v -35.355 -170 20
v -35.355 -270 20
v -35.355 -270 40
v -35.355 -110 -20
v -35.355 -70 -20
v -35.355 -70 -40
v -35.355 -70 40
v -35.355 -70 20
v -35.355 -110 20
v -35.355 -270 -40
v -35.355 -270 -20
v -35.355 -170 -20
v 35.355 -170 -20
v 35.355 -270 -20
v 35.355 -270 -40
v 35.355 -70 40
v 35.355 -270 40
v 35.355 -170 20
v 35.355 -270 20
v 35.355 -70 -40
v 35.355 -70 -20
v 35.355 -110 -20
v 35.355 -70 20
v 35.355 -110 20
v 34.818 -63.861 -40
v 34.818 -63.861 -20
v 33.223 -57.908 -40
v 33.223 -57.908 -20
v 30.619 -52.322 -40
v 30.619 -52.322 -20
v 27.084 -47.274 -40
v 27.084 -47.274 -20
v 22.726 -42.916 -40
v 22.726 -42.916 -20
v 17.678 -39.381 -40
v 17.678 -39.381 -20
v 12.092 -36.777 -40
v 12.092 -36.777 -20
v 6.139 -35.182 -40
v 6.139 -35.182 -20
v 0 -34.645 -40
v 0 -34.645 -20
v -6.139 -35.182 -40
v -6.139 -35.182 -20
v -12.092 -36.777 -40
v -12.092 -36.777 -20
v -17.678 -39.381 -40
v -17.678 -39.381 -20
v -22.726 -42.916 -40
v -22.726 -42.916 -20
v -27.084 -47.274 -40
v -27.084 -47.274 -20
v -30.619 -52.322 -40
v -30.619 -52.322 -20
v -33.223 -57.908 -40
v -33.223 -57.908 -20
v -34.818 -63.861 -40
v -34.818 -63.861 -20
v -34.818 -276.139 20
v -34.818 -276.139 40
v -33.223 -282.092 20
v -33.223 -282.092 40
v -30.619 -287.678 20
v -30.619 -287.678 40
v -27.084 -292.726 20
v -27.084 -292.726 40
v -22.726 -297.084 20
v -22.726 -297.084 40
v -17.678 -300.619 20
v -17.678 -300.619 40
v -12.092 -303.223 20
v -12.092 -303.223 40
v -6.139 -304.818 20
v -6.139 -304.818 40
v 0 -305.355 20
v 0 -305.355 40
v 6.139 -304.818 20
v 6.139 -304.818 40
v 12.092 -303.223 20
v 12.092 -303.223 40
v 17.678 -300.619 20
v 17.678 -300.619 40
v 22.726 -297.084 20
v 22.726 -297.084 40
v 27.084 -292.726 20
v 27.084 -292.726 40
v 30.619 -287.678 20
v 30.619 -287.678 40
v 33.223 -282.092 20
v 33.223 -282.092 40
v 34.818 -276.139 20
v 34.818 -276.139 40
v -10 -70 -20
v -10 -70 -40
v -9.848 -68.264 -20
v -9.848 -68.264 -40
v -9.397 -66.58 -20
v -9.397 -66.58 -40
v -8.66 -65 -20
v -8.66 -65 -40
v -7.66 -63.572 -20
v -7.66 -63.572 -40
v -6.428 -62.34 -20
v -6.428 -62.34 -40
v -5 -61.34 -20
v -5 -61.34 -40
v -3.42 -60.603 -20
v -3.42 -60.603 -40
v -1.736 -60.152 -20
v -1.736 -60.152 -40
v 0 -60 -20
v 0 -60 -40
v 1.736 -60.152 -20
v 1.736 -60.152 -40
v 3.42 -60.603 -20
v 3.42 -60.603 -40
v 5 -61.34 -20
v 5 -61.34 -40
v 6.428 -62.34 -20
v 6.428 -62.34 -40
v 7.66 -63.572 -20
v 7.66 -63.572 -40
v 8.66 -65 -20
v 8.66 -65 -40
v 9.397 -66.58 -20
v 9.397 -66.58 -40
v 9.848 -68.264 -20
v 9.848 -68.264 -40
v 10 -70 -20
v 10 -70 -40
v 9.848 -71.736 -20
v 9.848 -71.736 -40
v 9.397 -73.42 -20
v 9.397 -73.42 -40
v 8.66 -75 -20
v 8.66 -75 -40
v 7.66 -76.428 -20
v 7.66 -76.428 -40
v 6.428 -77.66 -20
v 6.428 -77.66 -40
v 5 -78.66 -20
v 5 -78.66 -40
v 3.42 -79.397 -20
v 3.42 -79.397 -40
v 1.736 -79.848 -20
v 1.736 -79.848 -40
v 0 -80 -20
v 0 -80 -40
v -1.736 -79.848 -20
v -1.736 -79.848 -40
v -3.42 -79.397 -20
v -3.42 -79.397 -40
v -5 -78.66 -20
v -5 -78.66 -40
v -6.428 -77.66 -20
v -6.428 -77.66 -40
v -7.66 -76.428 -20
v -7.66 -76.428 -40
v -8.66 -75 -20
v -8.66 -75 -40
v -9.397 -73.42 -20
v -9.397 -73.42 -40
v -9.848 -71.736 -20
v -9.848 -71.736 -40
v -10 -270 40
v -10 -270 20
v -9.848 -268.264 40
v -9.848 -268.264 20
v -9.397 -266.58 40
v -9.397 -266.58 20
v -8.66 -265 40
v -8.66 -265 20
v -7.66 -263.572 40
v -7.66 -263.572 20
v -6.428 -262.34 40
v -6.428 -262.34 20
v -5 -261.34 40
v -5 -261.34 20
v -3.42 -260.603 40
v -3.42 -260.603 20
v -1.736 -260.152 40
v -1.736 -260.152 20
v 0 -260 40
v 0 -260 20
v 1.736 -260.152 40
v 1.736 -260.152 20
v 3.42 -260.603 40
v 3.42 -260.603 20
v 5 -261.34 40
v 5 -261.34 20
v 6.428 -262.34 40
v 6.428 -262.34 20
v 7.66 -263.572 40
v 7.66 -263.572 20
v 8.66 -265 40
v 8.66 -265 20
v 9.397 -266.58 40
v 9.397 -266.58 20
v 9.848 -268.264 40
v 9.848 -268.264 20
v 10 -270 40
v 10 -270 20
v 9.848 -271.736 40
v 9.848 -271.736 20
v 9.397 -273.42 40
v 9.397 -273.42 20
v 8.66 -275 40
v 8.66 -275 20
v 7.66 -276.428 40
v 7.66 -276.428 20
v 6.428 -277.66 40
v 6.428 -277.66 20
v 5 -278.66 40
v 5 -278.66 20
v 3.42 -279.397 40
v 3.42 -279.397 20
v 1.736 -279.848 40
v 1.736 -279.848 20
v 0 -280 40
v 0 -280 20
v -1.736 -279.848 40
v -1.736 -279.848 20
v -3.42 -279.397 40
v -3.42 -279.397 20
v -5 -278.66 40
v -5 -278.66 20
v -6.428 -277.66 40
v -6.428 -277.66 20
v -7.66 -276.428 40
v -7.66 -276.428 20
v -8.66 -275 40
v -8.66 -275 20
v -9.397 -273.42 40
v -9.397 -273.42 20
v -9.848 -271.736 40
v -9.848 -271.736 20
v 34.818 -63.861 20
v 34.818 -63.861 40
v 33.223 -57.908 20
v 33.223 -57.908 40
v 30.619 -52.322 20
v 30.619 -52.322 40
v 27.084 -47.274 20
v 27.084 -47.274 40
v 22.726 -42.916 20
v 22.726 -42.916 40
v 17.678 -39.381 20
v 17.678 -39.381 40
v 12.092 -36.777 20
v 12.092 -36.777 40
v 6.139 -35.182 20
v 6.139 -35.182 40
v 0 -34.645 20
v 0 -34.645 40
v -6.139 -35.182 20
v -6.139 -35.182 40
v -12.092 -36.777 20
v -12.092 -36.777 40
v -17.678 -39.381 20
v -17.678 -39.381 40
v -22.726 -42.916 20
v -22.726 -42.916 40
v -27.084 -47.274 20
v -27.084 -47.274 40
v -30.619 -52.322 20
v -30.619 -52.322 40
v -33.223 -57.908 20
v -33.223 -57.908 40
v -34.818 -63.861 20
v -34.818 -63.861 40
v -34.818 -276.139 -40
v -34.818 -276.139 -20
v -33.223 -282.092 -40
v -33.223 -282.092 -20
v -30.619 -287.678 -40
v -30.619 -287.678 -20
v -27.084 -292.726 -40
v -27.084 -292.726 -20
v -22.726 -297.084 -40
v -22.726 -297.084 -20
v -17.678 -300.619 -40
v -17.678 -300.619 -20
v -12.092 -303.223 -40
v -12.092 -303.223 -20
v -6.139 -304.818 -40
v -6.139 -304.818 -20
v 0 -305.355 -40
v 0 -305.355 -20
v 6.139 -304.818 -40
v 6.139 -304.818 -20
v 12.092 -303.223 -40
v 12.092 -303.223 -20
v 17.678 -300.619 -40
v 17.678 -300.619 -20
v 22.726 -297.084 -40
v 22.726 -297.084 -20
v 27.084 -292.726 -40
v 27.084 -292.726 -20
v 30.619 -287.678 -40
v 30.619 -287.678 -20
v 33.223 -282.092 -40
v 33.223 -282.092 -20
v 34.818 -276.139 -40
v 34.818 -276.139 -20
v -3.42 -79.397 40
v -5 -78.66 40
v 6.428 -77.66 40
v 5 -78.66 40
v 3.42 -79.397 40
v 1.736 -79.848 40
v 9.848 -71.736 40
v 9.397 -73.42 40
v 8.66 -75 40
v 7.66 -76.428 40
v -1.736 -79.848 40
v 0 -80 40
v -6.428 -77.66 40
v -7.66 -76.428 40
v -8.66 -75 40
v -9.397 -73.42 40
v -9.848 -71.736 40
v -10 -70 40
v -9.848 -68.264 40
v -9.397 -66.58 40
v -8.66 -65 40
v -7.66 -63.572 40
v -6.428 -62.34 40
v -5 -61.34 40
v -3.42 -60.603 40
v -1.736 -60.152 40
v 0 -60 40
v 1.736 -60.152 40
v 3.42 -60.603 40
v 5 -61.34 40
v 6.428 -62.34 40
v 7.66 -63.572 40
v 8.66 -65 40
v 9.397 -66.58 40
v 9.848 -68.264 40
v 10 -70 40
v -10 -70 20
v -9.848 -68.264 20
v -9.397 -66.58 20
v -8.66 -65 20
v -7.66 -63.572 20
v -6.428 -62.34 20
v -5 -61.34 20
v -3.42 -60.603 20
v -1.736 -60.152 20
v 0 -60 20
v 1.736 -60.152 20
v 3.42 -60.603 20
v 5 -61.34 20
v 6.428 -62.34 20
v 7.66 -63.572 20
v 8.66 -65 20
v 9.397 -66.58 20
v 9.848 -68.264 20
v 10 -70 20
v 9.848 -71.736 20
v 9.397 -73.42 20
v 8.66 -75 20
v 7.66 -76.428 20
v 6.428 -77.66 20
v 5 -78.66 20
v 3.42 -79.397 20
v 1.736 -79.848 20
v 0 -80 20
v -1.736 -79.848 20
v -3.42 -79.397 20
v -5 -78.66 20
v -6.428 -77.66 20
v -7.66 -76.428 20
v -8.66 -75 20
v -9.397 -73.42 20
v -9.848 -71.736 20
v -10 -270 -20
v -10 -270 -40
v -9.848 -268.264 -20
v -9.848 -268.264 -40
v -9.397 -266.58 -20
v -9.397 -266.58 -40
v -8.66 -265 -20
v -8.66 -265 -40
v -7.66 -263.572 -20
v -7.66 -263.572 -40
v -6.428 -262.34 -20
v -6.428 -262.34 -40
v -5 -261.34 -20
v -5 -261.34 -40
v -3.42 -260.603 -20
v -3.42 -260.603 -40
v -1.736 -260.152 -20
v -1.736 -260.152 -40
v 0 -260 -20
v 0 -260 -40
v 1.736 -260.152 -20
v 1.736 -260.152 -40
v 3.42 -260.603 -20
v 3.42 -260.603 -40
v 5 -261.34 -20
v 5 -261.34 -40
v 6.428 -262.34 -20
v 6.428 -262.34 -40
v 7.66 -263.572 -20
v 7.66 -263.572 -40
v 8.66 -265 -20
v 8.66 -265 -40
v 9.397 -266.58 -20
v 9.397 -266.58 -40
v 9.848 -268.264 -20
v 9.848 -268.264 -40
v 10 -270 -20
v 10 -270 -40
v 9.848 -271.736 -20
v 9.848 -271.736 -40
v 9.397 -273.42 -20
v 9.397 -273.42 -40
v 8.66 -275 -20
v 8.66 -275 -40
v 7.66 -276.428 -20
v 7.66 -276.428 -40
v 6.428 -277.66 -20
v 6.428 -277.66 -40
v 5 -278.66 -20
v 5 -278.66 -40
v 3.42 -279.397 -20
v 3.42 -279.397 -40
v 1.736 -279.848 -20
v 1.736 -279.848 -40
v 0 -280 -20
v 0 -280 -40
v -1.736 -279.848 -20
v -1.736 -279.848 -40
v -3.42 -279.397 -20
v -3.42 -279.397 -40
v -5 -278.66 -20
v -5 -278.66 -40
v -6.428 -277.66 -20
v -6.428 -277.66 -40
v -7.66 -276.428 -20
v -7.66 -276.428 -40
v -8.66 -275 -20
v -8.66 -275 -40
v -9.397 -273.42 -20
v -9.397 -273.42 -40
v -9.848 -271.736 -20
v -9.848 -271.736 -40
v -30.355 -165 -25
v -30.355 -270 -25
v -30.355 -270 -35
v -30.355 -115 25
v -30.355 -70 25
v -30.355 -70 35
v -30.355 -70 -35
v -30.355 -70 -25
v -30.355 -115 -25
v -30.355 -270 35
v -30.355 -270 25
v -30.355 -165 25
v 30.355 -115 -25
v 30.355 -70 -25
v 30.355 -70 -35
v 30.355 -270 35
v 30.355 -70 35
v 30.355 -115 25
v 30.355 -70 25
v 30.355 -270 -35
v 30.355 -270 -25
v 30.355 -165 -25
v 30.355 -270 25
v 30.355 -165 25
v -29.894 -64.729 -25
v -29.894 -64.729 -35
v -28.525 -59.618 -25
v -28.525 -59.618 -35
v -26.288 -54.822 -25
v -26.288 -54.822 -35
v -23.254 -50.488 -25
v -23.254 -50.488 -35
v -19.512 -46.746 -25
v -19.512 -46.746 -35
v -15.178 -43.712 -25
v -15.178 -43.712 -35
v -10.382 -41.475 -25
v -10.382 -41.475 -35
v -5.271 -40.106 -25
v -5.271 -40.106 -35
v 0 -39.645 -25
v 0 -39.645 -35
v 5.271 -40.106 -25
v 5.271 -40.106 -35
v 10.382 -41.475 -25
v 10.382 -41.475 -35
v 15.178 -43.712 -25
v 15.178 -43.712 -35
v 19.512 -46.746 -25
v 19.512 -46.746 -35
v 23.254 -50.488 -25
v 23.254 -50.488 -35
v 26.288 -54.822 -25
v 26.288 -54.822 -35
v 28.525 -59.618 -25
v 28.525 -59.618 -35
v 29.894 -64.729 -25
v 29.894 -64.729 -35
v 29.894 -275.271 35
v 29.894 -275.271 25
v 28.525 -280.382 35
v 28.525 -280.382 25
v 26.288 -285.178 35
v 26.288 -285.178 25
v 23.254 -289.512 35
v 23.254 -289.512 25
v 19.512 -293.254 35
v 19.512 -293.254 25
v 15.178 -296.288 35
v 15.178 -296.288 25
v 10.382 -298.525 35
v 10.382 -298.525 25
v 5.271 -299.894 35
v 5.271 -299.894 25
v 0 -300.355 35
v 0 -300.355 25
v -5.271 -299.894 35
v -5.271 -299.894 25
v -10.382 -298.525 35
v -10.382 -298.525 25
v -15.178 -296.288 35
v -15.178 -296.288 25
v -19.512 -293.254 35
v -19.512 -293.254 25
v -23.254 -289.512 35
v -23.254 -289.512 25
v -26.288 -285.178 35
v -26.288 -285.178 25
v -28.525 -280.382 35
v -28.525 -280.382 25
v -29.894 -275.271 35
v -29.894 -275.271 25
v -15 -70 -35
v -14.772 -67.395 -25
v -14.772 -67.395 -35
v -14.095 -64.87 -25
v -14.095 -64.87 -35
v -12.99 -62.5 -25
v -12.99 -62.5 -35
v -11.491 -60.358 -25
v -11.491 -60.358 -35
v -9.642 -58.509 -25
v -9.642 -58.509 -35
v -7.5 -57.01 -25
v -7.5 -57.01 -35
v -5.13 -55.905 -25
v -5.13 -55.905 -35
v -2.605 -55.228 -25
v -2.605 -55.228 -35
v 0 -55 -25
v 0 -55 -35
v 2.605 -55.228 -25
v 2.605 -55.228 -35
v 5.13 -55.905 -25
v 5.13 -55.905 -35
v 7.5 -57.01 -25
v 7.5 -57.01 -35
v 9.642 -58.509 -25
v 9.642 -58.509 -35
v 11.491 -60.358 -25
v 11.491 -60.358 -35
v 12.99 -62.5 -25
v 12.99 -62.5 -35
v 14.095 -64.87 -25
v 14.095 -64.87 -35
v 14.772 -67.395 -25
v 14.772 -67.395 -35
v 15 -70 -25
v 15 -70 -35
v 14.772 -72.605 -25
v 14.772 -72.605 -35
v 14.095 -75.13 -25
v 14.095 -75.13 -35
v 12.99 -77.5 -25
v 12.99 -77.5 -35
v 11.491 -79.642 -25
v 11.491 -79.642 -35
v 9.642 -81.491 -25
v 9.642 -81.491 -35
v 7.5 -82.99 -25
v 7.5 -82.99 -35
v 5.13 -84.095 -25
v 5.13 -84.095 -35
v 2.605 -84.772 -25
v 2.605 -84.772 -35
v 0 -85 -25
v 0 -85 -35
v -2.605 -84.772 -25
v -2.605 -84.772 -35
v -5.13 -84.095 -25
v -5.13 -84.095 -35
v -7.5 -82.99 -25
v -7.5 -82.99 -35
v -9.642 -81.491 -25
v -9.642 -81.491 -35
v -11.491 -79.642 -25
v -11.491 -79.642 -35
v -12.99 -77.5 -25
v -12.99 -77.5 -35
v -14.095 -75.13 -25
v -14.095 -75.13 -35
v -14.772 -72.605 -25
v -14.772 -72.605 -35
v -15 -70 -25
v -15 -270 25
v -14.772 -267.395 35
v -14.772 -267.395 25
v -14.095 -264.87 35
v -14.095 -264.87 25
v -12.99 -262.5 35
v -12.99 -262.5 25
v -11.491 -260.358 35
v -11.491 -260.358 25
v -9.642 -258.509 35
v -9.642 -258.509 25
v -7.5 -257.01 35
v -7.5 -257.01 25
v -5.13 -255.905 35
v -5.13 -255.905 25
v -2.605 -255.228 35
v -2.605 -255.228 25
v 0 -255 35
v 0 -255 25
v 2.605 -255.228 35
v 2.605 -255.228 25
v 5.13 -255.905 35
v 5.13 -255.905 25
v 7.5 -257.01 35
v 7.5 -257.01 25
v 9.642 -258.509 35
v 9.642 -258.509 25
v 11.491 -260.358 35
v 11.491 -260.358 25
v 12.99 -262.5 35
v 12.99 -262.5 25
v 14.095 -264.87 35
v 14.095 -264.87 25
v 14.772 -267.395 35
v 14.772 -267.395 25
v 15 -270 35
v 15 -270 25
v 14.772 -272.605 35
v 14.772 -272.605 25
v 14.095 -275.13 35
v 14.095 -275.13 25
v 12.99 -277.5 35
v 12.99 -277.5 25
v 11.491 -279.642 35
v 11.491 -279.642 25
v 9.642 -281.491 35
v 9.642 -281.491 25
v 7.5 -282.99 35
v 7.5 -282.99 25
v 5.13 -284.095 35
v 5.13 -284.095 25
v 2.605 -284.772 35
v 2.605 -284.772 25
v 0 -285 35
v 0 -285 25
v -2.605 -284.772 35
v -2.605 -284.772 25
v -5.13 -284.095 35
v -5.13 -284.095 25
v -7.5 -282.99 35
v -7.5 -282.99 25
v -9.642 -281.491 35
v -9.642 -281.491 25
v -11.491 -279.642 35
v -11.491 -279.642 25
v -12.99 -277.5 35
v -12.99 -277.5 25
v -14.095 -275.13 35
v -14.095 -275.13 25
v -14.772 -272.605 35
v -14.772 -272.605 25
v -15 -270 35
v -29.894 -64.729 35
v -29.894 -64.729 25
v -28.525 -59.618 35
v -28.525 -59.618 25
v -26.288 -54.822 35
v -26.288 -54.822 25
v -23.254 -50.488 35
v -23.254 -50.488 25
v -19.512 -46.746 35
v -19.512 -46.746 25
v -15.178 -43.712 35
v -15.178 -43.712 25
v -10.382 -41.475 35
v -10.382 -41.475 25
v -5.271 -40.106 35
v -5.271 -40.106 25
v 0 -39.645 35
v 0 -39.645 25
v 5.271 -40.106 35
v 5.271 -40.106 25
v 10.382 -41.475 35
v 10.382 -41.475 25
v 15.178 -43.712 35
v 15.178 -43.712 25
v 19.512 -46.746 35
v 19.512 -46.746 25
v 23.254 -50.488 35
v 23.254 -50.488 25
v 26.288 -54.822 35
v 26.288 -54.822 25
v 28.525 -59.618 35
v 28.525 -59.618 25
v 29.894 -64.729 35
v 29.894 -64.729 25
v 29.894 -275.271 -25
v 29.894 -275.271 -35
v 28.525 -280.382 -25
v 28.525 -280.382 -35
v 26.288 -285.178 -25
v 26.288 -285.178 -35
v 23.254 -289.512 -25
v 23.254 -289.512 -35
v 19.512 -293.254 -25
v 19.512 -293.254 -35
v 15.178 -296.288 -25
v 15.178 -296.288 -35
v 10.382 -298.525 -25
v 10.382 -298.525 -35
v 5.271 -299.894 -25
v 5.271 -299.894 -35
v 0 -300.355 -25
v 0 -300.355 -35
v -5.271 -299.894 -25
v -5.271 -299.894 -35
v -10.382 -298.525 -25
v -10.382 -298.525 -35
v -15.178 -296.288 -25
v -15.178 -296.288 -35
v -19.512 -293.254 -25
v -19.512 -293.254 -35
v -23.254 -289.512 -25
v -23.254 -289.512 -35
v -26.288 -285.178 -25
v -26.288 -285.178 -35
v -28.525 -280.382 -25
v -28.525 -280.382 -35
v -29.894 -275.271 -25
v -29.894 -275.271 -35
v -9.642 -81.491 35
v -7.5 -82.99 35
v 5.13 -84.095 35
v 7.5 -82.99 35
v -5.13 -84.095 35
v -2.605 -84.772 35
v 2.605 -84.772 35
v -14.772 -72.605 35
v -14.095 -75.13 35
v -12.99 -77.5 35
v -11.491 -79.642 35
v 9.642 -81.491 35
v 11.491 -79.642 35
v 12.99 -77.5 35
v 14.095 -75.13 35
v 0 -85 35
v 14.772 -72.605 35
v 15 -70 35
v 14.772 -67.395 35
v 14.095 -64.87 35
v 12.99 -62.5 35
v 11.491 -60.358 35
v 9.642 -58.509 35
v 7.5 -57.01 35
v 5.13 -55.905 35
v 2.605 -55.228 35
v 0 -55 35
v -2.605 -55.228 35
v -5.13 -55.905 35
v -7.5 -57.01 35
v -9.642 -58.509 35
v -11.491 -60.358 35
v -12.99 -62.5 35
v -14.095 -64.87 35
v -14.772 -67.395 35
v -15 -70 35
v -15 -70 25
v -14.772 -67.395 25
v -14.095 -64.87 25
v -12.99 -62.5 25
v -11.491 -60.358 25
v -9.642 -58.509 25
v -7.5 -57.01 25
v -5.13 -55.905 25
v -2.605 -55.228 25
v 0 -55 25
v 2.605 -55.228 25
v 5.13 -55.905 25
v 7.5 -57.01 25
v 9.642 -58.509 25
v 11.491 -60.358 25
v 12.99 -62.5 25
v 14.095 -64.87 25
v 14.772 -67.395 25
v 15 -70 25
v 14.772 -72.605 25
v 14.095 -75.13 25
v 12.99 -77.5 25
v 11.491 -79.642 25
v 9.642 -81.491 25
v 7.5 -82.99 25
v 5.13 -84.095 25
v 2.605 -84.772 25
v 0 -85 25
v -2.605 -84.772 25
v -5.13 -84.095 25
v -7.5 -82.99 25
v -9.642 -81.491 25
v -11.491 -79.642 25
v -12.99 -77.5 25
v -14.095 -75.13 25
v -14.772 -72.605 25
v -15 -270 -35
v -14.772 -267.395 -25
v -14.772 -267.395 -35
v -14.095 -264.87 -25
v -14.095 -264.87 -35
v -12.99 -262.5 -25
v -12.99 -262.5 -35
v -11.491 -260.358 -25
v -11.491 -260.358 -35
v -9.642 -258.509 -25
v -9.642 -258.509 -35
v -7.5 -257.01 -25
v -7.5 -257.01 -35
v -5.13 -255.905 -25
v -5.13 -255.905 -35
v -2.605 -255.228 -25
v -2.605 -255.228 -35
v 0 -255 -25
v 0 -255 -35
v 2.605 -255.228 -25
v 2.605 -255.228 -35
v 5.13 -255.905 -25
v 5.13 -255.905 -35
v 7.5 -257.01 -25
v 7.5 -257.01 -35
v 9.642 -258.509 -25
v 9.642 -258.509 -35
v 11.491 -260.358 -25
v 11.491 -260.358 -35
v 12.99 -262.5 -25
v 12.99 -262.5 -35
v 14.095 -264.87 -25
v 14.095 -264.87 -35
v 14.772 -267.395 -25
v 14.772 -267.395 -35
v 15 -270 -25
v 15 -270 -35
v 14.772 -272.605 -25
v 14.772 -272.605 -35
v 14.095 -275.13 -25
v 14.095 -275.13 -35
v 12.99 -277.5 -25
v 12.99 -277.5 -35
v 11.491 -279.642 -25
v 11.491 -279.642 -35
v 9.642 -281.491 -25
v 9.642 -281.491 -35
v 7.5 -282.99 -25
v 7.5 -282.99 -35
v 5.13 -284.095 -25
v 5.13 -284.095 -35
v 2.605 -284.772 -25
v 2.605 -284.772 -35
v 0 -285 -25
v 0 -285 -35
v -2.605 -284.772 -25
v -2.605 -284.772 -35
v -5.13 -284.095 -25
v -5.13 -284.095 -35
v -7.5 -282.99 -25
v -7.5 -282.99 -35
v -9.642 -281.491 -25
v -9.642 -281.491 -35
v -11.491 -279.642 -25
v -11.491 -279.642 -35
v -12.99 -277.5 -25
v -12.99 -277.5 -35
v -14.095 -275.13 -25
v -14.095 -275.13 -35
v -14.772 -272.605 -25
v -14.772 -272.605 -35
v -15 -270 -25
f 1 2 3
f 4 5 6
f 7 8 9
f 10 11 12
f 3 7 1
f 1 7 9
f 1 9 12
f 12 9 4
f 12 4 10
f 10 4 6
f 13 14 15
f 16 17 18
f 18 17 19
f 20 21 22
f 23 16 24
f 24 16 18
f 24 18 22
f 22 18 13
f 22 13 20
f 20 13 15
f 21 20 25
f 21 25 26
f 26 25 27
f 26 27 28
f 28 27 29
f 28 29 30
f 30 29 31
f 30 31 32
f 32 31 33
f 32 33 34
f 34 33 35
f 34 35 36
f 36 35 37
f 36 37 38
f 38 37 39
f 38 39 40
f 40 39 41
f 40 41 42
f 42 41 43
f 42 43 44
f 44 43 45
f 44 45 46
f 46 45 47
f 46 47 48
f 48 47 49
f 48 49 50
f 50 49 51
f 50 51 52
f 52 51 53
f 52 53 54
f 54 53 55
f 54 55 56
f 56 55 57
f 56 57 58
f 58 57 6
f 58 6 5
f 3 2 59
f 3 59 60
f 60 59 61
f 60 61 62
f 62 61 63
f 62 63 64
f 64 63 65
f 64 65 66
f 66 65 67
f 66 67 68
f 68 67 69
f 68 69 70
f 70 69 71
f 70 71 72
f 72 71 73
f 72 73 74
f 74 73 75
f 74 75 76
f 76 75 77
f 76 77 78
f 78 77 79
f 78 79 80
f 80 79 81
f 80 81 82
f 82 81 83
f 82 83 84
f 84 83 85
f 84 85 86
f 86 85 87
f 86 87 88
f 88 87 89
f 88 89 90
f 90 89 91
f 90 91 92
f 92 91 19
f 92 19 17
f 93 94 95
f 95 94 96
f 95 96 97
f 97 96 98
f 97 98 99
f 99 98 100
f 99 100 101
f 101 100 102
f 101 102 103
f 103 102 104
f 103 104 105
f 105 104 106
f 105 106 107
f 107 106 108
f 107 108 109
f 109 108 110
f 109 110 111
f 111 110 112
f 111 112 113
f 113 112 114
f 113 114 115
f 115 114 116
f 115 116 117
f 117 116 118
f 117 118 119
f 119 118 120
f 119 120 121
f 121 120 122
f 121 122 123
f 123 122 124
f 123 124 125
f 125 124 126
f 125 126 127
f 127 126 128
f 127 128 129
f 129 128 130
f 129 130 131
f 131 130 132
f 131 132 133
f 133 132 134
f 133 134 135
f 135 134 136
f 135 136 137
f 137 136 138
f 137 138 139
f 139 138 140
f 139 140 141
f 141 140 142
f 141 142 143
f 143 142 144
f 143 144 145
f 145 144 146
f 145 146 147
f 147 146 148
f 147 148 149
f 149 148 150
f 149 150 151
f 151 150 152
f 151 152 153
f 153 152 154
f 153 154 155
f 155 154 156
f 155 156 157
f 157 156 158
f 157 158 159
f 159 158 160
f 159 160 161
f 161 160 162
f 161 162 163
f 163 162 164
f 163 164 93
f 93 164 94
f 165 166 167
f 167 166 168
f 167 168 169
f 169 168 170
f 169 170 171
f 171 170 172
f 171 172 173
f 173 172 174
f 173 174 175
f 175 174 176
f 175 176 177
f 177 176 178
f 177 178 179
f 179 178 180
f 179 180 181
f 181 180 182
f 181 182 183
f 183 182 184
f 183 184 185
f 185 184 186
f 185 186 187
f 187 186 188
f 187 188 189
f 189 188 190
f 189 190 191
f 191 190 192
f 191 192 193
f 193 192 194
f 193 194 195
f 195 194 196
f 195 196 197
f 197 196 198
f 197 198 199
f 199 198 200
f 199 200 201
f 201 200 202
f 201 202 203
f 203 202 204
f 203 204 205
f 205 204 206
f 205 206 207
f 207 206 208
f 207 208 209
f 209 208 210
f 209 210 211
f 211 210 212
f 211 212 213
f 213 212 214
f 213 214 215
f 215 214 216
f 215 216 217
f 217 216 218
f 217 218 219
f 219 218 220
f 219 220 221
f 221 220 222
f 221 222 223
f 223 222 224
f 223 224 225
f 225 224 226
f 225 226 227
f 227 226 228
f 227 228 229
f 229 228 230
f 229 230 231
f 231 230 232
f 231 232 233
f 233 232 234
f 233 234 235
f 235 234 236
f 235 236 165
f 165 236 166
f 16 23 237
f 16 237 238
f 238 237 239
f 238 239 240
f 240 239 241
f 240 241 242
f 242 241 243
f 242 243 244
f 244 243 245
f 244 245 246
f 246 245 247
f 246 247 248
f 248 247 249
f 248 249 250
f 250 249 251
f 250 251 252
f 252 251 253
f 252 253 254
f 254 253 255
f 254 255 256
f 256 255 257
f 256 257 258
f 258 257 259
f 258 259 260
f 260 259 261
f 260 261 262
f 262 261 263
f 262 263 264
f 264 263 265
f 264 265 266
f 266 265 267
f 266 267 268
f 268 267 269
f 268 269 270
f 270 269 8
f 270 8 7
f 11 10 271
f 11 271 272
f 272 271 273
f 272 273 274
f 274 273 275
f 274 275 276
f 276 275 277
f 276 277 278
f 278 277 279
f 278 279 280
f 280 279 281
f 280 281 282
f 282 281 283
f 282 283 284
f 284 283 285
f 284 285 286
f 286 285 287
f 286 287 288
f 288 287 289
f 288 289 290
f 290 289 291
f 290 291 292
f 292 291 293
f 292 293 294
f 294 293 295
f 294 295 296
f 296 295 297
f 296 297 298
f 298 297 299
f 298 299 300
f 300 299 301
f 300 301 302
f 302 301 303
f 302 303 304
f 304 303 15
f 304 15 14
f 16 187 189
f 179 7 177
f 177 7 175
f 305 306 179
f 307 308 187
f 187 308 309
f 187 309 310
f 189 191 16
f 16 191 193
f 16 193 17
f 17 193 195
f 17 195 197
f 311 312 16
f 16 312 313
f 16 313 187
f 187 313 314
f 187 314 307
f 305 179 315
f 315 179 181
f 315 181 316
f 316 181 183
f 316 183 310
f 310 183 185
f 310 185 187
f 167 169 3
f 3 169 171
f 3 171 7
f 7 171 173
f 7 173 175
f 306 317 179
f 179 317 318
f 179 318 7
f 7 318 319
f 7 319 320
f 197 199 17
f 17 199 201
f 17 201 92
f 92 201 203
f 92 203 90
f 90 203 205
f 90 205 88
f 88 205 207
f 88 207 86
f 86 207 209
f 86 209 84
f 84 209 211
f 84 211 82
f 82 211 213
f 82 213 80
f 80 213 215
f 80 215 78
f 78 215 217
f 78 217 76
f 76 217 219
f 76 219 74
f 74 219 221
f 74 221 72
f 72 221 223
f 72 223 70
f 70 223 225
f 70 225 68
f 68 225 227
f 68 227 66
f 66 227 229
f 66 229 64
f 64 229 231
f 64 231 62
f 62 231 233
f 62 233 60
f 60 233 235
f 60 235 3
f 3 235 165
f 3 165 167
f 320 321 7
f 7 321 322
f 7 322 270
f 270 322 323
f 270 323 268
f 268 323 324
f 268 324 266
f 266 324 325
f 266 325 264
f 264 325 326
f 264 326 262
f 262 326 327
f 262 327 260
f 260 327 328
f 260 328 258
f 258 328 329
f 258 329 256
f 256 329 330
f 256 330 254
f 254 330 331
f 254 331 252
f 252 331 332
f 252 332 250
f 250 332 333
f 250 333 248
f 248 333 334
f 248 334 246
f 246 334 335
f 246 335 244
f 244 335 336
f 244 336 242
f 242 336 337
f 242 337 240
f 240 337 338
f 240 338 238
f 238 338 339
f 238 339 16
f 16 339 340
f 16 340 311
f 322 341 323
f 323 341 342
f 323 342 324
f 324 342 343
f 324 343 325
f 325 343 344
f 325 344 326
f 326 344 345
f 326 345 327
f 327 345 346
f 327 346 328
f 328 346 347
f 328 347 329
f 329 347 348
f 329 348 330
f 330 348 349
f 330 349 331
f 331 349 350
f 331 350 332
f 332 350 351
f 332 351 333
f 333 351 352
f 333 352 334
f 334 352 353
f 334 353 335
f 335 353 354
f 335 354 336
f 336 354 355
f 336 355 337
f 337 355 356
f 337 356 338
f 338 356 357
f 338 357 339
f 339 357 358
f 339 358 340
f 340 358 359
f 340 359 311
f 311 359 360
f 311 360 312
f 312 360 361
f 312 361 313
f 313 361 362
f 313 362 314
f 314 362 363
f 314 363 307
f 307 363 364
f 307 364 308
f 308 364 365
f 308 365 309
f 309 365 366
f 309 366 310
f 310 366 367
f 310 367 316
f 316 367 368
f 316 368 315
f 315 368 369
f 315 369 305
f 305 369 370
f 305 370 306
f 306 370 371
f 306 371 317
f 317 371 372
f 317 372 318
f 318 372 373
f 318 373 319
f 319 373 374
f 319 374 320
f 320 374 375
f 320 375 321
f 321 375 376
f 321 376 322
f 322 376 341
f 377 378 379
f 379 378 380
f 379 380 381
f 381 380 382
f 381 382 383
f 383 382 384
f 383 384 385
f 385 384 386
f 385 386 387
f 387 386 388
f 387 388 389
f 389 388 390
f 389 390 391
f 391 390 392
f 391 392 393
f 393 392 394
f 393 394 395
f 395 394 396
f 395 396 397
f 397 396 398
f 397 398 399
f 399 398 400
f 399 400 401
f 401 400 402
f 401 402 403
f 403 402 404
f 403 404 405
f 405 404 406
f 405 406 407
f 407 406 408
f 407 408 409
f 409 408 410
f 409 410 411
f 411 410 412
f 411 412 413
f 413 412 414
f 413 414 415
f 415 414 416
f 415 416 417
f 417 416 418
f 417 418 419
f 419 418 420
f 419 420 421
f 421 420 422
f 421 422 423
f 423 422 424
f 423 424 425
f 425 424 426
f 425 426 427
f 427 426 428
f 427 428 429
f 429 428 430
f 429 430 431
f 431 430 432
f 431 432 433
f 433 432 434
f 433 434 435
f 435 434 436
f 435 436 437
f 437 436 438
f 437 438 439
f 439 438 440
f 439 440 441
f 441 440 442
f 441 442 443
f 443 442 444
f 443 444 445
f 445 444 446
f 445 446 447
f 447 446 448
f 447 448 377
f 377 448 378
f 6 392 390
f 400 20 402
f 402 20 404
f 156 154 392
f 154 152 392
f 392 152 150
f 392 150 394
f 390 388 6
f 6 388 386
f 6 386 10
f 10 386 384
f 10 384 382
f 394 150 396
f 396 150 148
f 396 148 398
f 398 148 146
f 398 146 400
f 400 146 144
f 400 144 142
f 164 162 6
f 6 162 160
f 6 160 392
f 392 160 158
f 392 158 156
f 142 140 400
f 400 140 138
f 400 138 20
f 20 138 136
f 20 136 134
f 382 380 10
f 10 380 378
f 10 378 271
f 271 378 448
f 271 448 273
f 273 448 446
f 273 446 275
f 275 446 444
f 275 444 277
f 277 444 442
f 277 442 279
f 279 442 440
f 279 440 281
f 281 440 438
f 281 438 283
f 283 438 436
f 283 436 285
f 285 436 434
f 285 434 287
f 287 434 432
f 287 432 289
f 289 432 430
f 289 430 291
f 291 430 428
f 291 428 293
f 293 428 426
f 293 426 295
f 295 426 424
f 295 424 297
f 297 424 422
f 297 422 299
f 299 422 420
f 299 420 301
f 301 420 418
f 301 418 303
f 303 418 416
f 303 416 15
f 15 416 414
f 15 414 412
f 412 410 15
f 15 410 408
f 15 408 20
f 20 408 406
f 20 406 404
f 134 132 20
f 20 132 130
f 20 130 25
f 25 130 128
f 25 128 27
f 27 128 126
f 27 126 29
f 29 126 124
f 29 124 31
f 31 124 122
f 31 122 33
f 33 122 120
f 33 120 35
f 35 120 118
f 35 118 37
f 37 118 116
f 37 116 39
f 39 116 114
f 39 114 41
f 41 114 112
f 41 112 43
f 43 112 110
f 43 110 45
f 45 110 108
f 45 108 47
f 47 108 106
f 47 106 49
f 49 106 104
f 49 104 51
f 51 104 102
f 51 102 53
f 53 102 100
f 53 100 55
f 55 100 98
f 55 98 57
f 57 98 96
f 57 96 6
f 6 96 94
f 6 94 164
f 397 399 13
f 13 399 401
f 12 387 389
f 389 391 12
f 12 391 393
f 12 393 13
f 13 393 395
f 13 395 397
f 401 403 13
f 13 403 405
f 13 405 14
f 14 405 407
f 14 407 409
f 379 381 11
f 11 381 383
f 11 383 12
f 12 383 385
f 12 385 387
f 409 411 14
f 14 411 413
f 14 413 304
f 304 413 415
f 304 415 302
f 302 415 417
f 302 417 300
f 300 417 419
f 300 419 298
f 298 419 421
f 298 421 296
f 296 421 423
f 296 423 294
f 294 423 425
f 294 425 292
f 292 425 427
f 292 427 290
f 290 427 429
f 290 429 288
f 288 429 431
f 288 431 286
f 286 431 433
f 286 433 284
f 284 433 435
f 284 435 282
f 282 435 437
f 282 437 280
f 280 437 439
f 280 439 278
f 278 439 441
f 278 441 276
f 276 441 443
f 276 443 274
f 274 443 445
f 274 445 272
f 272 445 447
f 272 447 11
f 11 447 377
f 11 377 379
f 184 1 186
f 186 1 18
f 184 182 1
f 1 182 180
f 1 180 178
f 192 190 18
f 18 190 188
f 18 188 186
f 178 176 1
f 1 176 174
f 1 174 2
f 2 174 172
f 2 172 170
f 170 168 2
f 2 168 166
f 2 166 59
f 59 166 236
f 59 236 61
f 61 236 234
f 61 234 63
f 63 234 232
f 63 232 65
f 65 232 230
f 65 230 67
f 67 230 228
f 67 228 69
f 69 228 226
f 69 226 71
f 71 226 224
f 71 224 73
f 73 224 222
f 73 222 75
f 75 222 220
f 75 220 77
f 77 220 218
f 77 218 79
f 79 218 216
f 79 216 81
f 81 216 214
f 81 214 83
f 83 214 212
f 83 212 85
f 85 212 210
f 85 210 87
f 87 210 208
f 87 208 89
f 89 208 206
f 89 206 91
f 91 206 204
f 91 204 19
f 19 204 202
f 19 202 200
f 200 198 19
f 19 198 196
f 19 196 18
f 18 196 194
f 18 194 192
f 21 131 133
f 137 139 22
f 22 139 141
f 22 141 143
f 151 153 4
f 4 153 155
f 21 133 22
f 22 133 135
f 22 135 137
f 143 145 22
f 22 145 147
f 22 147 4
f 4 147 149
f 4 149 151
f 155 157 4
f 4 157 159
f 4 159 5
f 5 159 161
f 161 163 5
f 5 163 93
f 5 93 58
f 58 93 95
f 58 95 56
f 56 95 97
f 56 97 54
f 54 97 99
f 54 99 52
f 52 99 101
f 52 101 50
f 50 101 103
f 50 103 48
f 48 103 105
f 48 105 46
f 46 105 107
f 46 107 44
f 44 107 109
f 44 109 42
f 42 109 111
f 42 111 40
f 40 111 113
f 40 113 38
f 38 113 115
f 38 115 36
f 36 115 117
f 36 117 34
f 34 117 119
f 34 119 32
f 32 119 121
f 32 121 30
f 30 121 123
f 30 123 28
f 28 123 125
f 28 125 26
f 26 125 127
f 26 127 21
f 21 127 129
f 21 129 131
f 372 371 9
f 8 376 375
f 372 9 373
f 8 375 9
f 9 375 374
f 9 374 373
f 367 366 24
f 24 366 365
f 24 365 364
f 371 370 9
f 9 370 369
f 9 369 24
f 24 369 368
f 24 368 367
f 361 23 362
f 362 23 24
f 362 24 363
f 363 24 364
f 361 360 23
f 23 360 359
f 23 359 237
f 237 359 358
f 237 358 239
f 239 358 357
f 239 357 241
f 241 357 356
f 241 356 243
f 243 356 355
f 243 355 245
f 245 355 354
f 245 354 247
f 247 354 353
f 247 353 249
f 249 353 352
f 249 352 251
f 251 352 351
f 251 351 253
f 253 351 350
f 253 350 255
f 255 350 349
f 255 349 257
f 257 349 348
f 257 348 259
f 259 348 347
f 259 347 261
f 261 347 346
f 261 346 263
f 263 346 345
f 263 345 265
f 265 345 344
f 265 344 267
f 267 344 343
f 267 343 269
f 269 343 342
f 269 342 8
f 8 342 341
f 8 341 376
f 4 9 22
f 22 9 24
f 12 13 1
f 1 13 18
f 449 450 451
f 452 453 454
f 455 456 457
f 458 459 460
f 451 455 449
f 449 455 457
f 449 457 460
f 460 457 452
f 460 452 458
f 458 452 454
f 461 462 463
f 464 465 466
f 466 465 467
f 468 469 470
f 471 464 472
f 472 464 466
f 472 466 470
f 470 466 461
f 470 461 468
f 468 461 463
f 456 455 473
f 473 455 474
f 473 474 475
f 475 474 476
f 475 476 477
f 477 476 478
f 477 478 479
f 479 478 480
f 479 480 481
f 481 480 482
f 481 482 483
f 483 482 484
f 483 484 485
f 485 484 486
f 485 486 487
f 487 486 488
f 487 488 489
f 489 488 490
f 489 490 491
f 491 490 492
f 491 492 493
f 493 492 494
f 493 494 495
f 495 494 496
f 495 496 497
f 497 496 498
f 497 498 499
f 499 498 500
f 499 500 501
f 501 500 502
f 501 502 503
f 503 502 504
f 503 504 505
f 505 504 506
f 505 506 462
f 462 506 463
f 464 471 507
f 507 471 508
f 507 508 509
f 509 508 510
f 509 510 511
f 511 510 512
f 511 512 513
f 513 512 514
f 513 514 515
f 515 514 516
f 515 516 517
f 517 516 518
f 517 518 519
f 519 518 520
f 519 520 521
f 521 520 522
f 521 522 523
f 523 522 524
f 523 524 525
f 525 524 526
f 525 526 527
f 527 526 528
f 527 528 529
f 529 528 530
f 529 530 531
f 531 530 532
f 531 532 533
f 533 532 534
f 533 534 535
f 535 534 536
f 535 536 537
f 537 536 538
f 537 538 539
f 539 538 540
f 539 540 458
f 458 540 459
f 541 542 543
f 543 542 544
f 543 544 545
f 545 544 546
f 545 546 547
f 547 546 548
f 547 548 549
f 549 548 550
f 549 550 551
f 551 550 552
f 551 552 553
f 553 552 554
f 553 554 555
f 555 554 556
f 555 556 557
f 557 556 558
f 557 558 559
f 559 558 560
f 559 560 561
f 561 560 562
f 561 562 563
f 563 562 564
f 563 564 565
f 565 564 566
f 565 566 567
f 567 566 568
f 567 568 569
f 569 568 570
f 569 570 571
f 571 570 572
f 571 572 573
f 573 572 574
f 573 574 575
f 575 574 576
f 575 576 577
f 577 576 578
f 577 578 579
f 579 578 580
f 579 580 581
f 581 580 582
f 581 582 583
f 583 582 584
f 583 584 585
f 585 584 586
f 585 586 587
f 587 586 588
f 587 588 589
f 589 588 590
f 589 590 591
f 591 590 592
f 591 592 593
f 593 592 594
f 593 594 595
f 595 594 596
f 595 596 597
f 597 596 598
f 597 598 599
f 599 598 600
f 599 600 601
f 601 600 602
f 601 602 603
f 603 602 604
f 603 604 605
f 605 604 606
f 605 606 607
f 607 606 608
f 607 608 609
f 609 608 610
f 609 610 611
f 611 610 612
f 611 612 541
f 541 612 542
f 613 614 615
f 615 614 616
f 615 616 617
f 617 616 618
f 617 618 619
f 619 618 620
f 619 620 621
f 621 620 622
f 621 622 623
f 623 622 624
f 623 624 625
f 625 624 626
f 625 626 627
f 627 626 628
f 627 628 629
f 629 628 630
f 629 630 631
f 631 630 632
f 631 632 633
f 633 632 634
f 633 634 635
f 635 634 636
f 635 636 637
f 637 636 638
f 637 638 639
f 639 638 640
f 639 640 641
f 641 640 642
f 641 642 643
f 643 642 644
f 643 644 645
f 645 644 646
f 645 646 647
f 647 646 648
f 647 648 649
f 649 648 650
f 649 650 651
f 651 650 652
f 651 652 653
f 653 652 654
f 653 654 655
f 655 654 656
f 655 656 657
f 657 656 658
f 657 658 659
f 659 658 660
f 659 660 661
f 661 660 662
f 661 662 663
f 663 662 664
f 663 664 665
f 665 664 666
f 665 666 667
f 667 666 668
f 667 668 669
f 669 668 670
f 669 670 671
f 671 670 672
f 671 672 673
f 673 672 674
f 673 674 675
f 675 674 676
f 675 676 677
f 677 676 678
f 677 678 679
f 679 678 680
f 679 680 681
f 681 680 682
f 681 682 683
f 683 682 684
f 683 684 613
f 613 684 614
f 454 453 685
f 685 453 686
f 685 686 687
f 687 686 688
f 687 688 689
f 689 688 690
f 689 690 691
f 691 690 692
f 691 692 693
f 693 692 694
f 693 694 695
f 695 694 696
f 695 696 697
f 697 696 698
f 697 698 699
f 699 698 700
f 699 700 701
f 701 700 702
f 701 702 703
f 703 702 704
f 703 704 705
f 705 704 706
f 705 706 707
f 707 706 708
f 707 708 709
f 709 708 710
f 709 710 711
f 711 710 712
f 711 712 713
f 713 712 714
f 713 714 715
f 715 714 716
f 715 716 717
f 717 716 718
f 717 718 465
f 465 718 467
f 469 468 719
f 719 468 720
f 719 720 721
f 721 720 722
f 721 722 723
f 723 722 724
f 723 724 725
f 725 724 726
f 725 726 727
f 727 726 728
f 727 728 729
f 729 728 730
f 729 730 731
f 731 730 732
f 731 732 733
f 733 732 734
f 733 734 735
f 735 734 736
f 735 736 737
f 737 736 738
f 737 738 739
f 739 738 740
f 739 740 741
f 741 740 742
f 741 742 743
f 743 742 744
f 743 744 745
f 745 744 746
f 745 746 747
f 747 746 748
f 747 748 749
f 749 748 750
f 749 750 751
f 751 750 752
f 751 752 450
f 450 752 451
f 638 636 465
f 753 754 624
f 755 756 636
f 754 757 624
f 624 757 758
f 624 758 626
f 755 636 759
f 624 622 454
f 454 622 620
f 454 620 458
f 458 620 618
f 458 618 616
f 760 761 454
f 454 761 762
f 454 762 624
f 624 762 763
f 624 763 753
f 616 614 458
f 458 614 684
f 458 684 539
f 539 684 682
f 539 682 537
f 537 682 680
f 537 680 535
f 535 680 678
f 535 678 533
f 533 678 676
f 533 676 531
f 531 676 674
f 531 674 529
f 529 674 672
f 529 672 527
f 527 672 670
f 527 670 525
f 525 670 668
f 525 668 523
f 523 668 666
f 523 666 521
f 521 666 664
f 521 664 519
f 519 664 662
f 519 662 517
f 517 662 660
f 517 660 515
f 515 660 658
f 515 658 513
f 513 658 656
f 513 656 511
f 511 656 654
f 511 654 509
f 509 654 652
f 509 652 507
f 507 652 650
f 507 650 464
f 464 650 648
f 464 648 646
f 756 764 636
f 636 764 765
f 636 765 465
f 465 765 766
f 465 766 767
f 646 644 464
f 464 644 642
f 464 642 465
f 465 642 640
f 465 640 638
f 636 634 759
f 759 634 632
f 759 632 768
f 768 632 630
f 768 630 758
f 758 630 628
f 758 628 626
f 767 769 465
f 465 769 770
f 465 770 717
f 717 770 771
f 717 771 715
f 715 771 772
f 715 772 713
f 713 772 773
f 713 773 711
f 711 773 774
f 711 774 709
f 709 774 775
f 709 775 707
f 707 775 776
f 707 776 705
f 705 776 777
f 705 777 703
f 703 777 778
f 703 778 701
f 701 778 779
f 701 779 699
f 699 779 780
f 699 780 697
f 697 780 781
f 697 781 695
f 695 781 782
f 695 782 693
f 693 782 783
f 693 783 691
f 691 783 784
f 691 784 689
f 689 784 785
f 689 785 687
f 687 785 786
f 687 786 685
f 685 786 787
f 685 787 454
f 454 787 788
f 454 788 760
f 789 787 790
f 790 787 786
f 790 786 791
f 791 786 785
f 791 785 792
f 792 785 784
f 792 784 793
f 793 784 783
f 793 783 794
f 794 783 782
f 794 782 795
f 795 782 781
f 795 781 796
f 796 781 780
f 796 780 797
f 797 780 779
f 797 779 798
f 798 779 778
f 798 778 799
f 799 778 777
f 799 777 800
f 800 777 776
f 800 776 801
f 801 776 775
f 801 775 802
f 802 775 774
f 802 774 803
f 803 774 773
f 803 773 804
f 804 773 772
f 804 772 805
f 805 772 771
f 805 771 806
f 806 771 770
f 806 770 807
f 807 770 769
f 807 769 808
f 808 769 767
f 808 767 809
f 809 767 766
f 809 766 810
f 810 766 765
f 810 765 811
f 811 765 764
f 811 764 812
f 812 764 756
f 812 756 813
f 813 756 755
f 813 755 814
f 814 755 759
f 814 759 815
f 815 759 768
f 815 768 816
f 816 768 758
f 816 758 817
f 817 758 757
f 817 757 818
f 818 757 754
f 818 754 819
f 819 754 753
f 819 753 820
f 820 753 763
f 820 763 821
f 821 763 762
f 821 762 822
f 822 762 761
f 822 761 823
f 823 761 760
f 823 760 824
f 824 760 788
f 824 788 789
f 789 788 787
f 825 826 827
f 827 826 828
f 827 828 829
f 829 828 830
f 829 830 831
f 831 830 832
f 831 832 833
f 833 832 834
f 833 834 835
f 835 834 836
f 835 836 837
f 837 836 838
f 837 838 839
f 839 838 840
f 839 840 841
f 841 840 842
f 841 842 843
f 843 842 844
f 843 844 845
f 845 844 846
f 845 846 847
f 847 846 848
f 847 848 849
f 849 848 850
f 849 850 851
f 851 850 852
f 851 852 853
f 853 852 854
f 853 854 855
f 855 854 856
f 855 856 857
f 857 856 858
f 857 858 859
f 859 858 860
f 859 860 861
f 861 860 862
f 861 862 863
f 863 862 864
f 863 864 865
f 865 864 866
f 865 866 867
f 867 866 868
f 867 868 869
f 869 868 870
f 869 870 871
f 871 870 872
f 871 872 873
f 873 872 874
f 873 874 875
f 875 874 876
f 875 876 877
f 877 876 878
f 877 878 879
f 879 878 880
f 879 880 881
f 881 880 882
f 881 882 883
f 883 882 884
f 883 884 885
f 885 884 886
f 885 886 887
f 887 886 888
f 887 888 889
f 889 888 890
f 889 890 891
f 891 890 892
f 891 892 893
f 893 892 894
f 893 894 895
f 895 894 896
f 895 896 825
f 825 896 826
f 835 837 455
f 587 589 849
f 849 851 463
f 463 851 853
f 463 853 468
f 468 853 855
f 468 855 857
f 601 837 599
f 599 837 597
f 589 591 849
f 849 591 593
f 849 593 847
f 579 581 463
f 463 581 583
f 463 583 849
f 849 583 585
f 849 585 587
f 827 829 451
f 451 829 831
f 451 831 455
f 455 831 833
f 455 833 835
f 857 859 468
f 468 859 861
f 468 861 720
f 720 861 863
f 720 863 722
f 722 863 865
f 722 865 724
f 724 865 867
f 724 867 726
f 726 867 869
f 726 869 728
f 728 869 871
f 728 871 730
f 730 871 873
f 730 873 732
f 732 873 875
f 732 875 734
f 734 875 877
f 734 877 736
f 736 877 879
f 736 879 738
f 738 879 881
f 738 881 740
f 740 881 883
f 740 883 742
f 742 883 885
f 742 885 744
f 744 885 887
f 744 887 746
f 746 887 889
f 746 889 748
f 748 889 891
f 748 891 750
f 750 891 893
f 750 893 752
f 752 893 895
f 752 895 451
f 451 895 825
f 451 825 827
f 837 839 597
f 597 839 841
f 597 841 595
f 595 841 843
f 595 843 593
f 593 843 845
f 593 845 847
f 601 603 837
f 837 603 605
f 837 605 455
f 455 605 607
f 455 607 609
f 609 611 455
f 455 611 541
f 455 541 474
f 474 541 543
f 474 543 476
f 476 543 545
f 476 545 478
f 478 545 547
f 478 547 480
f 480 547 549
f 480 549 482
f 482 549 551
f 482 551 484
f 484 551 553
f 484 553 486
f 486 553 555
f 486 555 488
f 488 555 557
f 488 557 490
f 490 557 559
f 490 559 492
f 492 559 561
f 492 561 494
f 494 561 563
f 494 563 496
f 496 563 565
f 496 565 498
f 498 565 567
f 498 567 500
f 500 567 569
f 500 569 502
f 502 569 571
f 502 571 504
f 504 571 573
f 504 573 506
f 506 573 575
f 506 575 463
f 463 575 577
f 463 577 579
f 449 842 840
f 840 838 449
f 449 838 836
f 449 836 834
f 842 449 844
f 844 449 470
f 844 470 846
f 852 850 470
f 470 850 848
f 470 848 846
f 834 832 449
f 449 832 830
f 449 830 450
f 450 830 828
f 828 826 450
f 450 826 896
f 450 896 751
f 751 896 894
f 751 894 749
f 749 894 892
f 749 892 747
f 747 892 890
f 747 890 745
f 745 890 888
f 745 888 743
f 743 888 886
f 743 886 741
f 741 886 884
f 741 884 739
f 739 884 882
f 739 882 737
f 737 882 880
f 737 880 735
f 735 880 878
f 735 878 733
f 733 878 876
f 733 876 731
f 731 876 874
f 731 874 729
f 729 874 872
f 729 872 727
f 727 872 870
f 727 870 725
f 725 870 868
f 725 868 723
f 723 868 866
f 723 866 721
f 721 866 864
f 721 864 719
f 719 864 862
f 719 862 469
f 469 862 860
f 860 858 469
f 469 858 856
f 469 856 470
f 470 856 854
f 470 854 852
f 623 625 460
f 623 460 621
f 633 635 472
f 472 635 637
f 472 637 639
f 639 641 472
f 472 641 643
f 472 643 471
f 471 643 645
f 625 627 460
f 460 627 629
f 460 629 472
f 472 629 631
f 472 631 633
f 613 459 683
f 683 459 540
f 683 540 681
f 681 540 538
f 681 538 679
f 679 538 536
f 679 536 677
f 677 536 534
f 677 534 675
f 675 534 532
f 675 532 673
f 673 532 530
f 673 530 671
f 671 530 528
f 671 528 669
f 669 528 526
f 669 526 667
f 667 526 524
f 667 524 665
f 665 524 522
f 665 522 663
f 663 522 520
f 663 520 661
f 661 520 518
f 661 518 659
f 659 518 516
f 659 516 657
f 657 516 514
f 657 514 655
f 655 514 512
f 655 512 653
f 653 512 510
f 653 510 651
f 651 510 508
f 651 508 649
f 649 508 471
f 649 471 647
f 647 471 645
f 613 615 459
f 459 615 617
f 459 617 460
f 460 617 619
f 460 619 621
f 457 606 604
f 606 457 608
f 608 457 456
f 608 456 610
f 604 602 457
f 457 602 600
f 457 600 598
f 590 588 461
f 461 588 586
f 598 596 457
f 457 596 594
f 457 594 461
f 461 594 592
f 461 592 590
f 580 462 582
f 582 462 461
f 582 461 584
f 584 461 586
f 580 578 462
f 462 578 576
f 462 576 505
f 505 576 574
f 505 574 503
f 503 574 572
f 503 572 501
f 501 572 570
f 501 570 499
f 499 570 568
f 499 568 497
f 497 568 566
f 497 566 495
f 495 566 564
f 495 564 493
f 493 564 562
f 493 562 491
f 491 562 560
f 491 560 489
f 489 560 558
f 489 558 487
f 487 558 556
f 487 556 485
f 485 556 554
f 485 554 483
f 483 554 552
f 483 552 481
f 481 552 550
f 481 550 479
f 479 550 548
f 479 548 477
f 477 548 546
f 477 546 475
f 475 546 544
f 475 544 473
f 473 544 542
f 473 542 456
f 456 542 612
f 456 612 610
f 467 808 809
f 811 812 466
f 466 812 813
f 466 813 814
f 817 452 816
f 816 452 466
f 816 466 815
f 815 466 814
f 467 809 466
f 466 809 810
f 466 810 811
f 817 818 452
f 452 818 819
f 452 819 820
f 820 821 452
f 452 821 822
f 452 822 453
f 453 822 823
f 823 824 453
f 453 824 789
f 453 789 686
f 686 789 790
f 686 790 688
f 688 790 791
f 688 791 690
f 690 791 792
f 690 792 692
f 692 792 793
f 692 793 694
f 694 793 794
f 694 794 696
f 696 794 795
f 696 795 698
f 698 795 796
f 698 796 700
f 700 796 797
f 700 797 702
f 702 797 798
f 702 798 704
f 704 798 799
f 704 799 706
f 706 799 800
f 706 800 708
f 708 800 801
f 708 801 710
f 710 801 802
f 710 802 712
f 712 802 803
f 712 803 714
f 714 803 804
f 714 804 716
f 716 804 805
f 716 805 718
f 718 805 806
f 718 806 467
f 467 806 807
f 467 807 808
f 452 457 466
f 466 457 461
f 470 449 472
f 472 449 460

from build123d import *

# Parameters (mm, degrees)
BOSS_EXTRUDE2_DEPTH            = 40
BOSS_EXTRUDE2_DEPTH_BACK       = 40
SKETCH2_R                      = 10
CUT_EXTRUDE1_DEPTH             = 20
CUT_EXTRUDE1_DEPTH_BACK        = 20
CUT_EXTRUDE2_REACH             = 311.987
SKETCH4_W                      = 70.710678118
SKETCH4_H                      = 60
CUT_EXTRUDE2_DIRECTION_2_REACH = 311.987
SHELL1_START                   = -35
SHELL1_OUTLINE_W               = 60.710678118
SHELL1_OUTLINE_H               = 50
SHELL1_DEPTH                   = 70
SHELL1_2_OUTLINE_R             = 15
SHELL1_2_DEPTH                 = 10
SHELL1_START_2                 = 25
SHELL1_3_OUTLINE_R             = 15
SHELL1_3_DEPTH                 = 10


# Read off the part's stored shape, not the designer's step: Shell1
with BuildPart() as part:
    # Sketch2 → Boss-Extrude2 (new, two sides: drawn at the far end of the back side and taken through both)
    with BuildSketch(Plane.XY.offset(-BOSS_EXTRUDE2_DEPTH_BACK)):
        with BuildLine():
            Line((-35.355339059, -70), (-35.355339059, -270))
            ThreePointArc((-35.355339059, -270), (0, -305.355339059), (35.355339059, -270))
            Line((35.355339059, -270), (35.355339059, -70))
            ThreePointArc((35.355339059, -70), (0, -34.644660941), (-35.355339059, -70))
        make_face()
        with Locations((0, -70)):
            Circle(SKETCH2_R, mode=Mode.SUBTRACT)
        with Locations((0, -270)):
            Circle(SKETCH2_R, mode=Mode.SUBTRACT)
    extrude(amount=BOSS_EXTRUDE2_DEPTH + BOSS_EXTRUDE2_DEPTH_BACK)

    # Sketch3 → Cut-Extrude1 (cut, two sides: drawn at the far end of the back side and taken through both)
    with BuildSketch(Plane.XY.offset(-CUT_EXTRUDE1_DEPTH_BACK)):
        with BuildLine():
            Line((-35.355339059, -230), (35.355339059, -230))
            Line((35.355339059, -230), (35.355339059, -270))
            ThreePointArc((35.355339059, -270), (0, -305.355339059), (-35.355339059, -270))
            Line((-35.355339059, -270), (-35.355339059, -230))
        make_face()
        with BuildLine():
            Line((35.355339059, -110), (35.355339059, -70))
            ThreePointArc((35.355339059, -70), (0, -34.644660941), (-35.355339059, -70))
            Line((-35.355339059, -70), (-35.355339059, -110))
            Line((-35.355339059, -110), (35.355339059, -110))
        make_face()
    extrude(amount=CUT_EXTRUDE1_DEPTH + CUT_EXTRUDE1_DEPTH_BACK, mode=Mode.SUBTRACT)

    # Cut-Extrude2: up to this face of the body (flat: up to its plane)
    cut_extrude2_end = Plane(part.part.faces().sort_by_distance((-34.321974306, -250, -20))[0])
    # Sketch4 → Cut-Extrude2 (cut, up to the picked face)
    with BuildSketch(Plane.XY, mode=Mode.PRIVATE) as cut_extrude2_sk1:
        with Locations((0, -200)):
            Rectangle(SKETCH4_W, SKETCH4_H)
    cut_extrude2_tool1 = split(extrude(cut_extrude2_sk1.sketch, amount=-CUT_EXTRUDE2_REACH, mode=Mode.PRIVATE), bisect_by=cut_extrude2_end, keep=Keep.BOTH, mode=Mode.PRIVATE)
    add(cut_extrude2_tool1.solids().sort_by(Axis((0, -200, 0), (0, 0, -1)))[0], mode=Mode.SUBTRACT)

    # Cut-Extrude2 direction 2: up to this face of the body (flat: up to its plane)
    cut_extrude2_direction_2_end = Plane(part.part.faces().sort_by_distance((-34.321974306, -250, 20))[0])
    # Sketch4 → Cut-Extrude2 direction 2 (cut, up to the picked face)
    with BuildSketch(Plane.XY, mode=Mode.PRIVATE) as cut_extrude2_direction_2_sk1:
        with Locations((0, -200)):
            Rectangle(SKETCH4_W, SKETCH4_H)
    cut_extrude2_direction_2_tool1 = split(extrude(cut_extrude2_direction_2_sk1.sketch, amount=CUT_EXTRUDE2_DIRECTION_2_REACH, mode=Mode.PRIVATE), bisect_by=cut_extrude2_direction_2_end, keep=Keep.BOTH, mode=Mode.PRIVATE)
    add(cut_extrude2_direction_2_tool1.solids().sort_by(Axis((0, -200, 0), (0, 0, 1)))[0], mode=Mode.SUBTRACT)

    # Shell1 outline → Shell1 (cut)
    with BuildSketch(Plane.XY.offset(SHELL1_START)):
        with Locations((0, -140)):
            Rectangle(SHELL1_OUTLINE_W, SHELL1_OUTLINE_H)
    extrude(amount=SHELL1_DEPTH, mode=Mode.SUBTRACT)

    # Shell1 2 outline → Shell1 2 (cut)
    # profile 1 of 2: a face of its own
    with BuildSketch(Plane.XY.offset(SHELL1_START)):
        with BuildLine():
            ThreePointArc((-30.355339059, -270), (0, -300.355339059), (30.355339059, -270))
            Line((30.355339059, -270), (30.355339059, -165))
            Line((30.355339059, -165), (-30.355339059, -165))
            Line((-30.355339059, -165), (-30.355339059, -270))
        make_face()
        with Locations((0, -270)):
            Circle(SHELL1_2_OUTLINE_R, mode=Mode.SUBTRACT)
    # profile 2 of 2: a face of its own
    with BuildSketch(Plane.XY.offset(SHELL1_START)):
        with BuildLine():
            Line((-30.355339059, -115), (30.355339059, -115))
            Line((30.355339059, -115), (30.355339059, -70))
            ThreePointArc((30.355339059, -70), (0, -39.644660941), (-30.355339059, -70))
            Line((-30.355339059, -70), (-30.355339059, -115))
        make_face()
        with Locations((0, -70)):
            Circle(SHELL1_2_OUTLINE_R, mode=Mode.SUBTRACT)
    extrude(amount=SHELL1_2_DEPTH, mode=Mode.SUBTRACT)

    # Shell1 3 outline → Shell1 3 (cut)
    # profile 1 of 2: a face of its own
    with BuildSketch(Plane.XY.offset(SHELL1_START_2)):
        with BuildLine():
            ThreePointArc((-30.355339059, -270), (0, -300.355339059), (30.355339059, -270))
            Line((30.355339059, -270), (30.355339059, -165))
            Line((30.355339059, -165), (-30.355339059, -165))
            Line((-30.355339059, -165), (-30.355339059, -270))
        make_face()
        with Locations((0, -270)):
            Circle(SHELL1_3_OUTLINE_R, mode=Mode.SUBTRACT)
    # profile 2 of 2: a face of its own
    with BuildSketch(Plane.XY.offset(SHELL1_START_2)):
        with BuildLine():
            Line((-30.355339059, -115), (30.355339059, -115))
            Line((30.355339059, -115), (30.355339059, -70))
            ThreePointArc((30.355339059, -70), (0, -39.644660941), (-30.355339059, -70))
            Line((-30.355339059, -70), (-30.355339059, -115))
        make_face()
        with Locations((0, -70)):
            Circle(SHELL1_3_OUTLINE_R, mode=Mode.SUBTRACT)
    extrude(amount=SHELL1_3_DEPTH, mode=Mode.SUBTRACT)


solid = part.part
